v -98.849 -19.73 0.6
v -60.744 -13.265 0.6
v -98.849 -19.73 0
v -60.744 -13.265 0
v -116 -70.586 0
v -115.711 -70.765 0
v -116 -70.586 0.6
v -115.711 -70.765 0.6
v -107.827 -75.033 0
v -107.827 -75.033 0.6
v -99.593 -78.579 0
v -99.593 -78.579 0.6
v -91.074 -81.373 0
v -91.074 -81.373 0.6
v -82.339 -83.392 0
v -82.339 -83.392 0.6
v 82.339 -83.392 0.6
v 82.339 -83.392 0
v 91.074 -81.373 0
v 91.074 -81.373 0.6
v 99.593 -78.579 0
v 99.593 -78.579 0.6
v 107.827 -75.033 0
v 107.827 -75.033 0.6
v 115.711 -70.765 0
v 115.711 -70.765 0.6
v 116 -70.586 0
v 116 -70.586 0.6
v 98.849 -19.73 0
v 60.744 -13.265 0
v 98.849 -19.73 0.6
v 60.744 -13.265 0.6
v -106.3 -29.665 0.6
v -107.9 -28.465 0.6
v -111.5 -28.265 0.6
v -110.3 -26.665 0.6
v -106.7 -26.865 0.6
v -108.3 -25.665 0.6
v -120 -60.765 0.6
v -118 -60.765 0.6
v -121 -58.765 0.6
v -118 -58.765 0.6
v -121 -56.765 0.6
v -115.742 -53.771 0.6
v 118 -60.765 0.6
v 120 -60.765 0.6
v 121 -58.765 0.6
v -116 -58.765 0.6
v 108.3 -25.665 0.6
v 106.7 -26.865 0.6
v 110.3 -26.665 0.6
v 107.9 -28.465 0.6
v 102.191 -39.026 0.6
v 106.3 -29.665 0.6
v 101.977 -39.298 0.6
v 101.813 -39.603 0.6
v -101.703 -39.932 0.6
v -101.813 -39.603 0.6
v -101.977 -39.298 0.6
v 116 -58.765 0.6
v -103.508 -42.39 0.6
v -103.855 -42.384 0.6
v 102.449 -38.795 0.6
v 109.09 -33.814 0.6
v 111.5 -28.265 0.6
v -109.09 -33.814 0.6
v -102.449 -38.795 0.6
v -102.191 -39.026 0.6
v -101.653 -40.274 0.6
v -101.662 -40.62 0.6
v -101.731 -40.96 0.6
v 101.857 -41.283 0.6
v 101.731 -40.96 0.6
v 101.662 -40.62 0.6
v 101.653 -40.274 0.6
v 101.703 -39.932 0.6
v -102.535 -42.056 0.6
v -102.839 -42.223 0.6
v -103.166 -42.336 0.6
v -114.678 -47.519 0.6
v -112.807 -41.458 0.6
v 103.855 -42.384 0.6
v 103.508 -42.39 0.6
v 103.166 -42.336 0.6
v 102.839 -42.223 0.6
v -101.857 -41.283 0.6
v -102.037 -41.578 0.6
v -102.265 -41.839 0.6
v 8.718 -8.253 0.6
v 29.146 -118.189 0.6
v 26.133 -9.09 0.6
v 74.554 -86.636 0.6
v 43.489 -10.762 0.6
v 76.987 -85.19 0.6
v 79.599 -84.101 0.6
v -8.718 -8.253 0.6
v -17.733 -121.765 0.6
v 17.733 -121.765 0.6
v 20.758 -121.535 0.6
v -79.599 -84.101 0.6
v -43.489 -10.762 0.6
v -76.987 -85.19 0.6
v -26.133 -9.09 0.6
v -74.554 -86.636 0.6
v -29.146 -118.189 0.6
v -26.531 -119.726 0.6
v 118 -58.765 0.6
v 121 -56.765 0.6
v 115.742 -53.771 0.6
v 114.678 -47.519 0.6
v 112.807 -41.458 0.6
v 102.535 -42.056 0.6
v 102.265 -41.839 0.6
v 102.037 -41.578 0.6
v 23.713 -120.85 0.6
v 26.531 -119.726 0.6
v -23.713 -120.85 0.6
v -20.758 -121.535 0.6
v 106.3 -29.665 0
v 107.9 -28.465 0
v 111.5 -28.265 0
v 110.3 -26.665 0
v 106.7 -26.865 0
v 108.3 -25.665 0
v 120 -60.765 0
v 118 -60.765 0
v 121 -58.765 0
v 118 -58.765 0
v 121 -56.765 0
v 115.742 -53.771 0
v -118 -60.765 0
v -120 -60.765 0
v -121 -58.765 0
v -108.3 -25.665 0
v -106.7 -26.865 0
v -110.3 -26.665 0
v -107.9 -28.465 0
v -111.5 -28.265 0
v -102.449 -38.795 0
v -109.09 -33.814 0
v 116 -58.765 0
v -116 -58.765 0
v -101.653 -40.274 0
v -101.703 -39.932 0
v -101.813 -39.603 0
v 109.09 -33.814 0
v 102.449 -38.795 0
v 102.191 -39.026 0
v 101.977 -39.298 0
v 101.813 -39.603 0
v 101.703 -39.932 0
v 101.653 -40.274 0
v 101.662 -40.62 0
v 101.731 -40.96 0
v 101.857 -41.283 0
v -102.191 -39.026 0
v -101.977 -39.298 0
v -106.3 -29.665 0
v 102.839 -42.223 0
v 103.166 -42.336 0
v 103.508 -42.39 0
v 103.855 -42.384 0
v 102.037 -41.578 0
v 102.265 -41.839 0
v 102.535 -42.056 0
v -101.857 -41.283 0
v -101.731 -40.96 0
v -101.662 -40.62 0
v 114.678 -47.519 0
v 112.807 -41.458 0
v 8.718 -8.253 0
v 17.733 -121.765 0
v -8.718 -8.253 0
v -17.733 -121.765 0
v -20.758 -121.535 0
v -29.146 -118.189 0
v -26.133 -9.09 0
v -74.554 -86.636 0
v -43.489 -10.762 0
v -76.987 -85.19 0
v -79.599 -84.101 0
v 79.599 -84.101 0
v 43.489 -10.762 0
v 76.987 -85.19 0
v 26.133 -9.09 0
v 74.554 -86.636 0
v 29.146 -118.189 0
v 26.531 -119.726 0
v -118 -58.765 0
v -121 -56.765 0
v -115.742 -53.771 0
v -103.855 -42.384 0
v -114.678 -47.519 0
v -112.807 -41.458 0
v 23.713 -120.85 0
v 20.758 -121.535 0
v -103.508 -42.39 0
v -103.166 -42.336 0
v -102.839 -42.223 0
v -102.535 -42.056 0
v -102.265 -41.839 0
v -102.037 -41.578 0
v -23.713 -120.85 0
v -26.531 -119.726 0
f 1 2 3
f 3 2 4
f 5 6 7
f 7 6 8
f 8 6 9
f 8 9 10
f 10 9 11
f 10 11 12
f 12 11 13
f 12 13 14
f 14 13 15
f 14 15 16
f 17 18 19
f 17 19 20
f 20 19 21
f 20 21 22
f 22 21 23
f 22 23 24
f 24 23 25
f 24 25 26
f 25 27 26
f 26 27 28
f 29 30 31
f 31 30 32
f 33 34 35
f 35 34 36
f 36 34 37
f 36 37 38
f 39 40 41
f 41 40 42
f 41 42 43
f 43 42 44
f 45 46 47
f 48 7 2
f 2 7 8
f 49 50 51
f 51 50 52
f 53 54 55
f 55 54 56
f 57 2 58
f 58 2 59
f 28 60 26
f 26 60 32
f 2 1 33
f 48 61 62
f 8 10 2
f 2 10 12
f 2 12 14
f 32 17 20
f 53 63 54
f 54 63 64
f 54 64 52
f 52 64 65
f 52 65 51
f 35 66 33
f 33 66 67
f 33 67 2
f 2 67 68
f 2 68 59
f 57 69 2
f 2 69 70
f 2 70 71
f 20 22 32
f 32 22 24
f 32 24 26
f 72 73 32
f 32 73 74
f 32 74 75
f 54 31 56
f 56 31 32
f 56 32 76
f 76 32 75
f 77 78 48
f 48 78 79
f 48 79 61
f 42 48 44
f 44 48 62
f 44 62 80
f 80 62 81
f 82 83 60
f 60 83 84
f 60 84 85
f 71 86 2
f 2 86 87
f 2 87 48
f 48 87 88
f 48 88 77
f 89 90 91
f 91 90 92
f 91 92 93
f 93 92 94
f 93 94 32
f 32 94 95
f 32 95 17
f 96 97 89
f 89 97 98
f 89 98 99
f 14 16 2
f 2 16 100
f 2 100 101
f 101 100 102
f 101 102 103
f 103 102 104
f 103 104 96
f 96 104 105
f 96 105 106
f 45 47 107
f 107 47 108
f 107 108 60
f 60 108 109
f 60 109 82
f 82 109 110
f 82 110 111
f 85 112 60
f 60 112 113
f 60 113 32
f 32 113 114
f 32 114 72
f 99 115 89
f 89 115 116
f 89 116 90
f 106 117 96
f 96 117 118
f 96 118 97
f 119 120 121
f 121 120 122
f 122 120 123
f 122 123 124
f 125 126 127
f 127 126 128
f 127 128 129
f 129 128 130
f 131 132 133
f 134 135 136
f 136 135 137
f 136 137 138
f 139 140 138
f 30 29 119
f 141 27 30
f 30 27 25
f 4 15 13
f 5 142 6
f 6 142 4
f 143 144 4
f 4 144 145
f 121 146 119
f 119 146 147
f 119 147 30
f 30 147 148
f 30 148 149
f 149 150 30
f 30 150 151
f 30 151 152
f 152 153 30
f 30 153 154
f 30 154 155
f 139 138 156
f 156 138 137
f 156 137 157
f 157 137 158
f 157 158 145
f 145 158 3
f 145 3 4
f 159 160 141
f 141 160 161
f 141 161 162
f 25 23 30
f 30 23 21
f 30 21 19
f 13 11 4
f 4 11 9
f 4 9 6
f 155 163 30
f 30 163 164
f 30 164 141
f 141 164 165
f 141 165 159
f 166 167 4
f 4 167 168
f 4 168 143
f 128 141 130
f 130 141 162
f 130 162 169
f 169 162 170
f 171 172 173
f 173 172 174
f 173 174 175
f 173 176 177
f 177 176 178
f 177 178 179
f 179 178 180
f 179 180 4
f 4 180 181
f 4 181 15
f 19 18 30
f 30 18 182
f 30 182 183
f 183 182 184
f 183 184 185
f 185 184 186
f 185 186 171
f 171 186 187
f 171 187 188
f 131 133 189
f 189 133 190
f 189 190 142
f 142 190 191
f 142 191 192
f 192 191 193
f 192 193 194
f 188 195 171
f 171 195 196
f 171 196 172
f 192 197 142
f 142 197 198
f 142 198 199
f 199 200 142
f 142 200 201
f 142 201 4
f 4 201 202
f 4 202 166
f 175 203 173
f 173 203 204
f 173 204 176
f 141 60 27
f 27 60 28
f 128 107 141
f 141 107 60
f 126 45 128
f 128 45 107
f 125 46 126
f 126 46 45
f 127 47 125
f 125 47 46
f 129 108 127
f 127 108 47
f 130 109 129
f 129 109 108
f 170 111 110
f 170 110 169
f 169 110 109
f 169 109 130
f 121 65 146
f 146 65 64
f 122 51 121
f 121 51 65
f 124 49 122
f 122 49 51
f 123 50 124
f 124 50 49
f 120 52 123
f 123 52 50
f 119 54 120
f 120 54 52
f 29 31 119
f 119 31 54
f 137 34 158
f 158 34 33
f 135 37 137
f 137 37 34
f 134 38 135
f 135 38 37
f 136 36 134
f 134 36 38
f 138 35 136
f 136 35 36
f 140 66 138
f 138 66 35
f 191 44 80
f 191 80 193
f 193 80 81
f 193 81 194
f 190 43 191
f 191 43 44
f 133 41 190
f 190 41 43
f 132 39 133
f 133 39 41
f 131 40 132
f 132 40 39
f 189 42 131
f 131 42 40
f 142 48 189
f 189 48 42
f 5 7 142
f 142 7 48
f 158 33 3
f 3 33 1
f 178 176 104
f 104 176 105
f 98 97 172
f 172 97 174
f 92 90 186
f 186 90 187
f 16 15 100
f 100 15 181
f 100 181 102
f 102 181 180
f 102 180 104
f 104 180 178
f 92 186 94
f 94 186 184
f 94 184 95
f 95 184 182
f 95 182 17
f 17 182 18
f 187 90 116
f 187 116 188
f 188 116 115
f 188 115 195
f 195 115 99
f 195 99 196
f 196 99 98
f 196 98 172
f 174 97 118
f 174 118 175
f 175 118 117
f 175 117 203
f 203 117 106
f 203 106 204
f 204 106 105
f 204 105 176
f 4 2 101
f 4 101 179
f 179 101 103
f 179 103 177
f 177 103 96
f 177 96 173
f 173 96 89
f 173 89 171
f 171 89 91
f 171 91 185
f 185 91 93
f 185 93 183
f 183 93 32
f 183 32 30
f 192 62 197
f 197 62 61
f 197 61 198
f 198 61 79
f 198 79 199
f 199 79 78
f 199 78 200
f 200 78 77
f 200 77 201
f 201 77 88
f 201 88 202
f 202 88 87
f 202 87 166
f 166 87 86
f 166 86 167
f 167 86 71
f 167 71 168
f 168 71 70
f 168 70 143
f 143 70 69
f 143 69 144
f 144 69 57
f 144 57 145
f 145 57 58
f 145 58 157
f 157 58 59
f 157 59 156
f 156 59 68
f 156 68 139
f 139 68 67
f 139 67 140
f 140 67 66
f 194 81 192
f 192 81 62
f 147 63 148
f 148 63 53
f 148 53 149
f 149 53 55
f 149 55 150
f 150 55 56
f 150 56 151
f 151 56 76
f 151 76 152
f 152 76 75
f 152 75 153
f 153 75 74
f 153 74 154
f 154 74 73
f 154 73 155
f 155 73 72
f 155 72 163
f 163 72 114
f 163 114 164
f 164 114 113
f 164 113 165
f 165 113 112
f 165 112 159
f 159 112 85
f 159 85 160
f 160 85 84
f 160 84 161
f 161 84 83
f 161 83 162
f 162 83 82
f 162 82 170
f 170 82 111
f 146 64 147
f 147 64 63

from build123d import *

# Parameters (mm, degrees)
MAIN_SHAPE_DEPTH        = 0.6
TABS_DEPTH              = 154.060061459
TABS_DEPTH_BACK         = 154.060061459
CHIN_GUARD_DEPTH        = 0.6
FILLET1_R               = 20
CUT_EXTRUDE1_DEPTH      = 172.662513141
CUT_EXTRUDE1_DEPTH_BACK = 172.662513141
CUT_EXTRUDE2_DEPTH      = 172.662513141
CUT_EXTRUDE2_DEPTH_BACK = 172.662513141


with BuildPart() as part:
    # Sketch1 → Main Shape (new body)
    with BuildSketch(Plane.XY):
        with BuildLine():
            Line((-24, -91.764766734), (24, -91.764766734))
            Line((24, -91.764766734), (78.266232563, -84.05670244))
            ThreePointArc((78.266232563, -84.05670244), (97.655491519, -79.289252293), (115.711102551, -70.764766734))
            ThreePointArc((115.711102551, -70.764766734), (120.685143325, -65.658407438), (122.5, -58.764766734))
            ThreePointArc((122.5, -58.764766734), (120.227482046, -43.118277124), (113.597722286, -28.764766734))
            ThreePointArc((113.597722286, -28.764766734), (107.811505455, -22.955172168), (100.180351554, -19.955641477))
            Line((100.180351554, -19.955641477), (60.74391922, -13.264766734))
            ThreePointArc((60.74391922, -13.264766734), (50.804108255, -9.246591688), (43.461443341, -1.434367632))
            ThreePointArc((43.461443341, -1.434367632), (36.448172688, 5.805997675), (26.941855461, 9.15842781))
            Line((26.941855461, 9.15842781), (17, 10.235233266))
            Line((17, 10.235233266), (10, 0))
            Line((10, 0), (-10, 0))
            Line((-10, 0), (-17, 10.235233266))
            Line((-17, 10.235233266), (-26.941855461, 9.15842781))
            ThreePointArc((-26.941855461, 9.15842781), (-36.448172688, 5.805997675), (-43.461443341, -1.434367632))
            ThreePointArc((-43.461443341, -1.434367632), (-50.804108255, -9.246591688), (-60.74391922, -13.264766734))
            Line((-60.74391922, -13.264766734), (-100.180351554, -19.955641477))
            ThreePointArc((-100.180351554, -19.955641477), (-107.811505455, -22.955172168), (-113.597722286, -28.764766734))
            ThreePointArc((-113.597722286, -28.764766734), (-120.227482046, -43.118277124), (-122.5, -58.764766734))
            ThreePointArc((-122.5, -58.764766734), (-120.685143325, -65.658407438), (-115.711102551, -70.764766734))
            ThreePointArc((-115.711102551, -70.764766734), (-97.655491519, -79.289252293), (-78.266232563, -84.05670244))
            Line((-78.266232563, -84.05670244), (-24, -91.764766734))
        make_face()
    extrude(amount=MAIN_SHAPE_DEPTH)

    # Sketch2 → Tabs (cut, two sides: drawn at the far end of the back side and taken through both)
    with BuildSketch(Plane.XY.offset(0.6).offset(-TABS_DEPTH_BACK)):
        with BuildLine():
            Line((-121, -58.764766734), (-121, -56.764766734))
            Line((-121, -56.764766734), (-115.742268041, -53.771413729))
            ThreePointArc((-115.742268041, -53.771413729), (-113.511139955, -43.427720083), (-109.089826236, -33.814088314))
            Line((-109.089826236, -33.814088314), (-111.5, -28.264766734))
            Line((-111.5, -28.264766734), (-110.3, -26.664766734))
            Line((-110.3, -26.664766734), (-108.3, -25.664766734))
            Line((-108.3, -25.664766734), (-106.7, -26.864766734))
            Line((-106.7, -26.864766734), (-107.9, -28.464766734))
            Line((-107.9, -28.464766734), (-106.3, -29.664766734))
            Line((-106.3, -29.664766734), (-98.84870892, -19.729711961))
            Line((-98.84870892, -19.729711961), (-100.180351554, -19.955641477))
            ThreePointArc((-100.180351554, -19.955641477), (-107.811505455, -22.955172168), (-113.597722286, -28.764766734))
            ThreePointArc((-113.597722286, -28.764766734), (-120.227482046, -43.118277124), (-122.5, -58.764766734))
            ThreePointArc((-122.5, -58.764766734), (-120.767844146, -65.510135516), (-116, -70.586357152))
            Line((-116, -70.586357152), (-116, -58.764766734))
            Line((-116, -58.764766734), (-118, -58.764766734))
            Line((-118, -58.764766734), (-118, -60.764766734))
            Line((-118, -60.764766734), (-120, -60.764766734))
            Line((-120, -60.764766734), (-121, -58.764766734))
        make_face()
        with BuildLine():
            Line((110.3, -26.664766734), (111.5, -28.264766734))
            Line((111.5, -28.264766734), (109.089826236, -33.814088314))
            ThreePointArc((109.089826236, -33.814088314), (113.511139955, -43.427720083), (115.742268041, -53.771413729))
            Line((115.742268041, -53.771413729), (121, -56.764766734))
            Line((121, -56.764766734), (121, -58.764766734))
            Line((121, -58.764766734), (120, -60.764766734))
            Line((120, -60.764766734), (118, -60.764766734))
            Line((118, -60.764766734), (118, -58.764766734))
            Line((118, -58.764766734), (116, -58.764766734))
            Line((116, -58.764766734), (116, -70.586357152))
            ThreePointArc((116, -70.586357152), (120.767844146, -65.510135516), (122.5, -58.764766734))
            ThreePointArc((122.5, -58.764766734), (120.227482046, -43.118277124), (113.597722286, -28.764766734))
            ThreePointArc((113.597722286, -28.764766734), (107.811505455, -22.955172168), (100.180351554, -19.955641477))
            Line((100.180351554, -19.955641477), (98.84870892, -19.729711961))
            Line((98.84870892, -19.729711961), (106.3, -29.664766734))
            Line((106.3, -29.664766734), (107.9, -28.464766734))
            Line((107.9, -28.464766734), (106.7, -26.864766734))
            Line((106.7, -26.864766734), (108.3, -25.664766734))
            Line((108.3, -25.664766734), (110.3, -26.664766734))
        make_face()
    extrude(amount=TABS_DEPTH + TABS_DEPTH_BACK, mode=Mode.SUBTRACT)

    # Sketch5 → Chin guard (add)
    with BuildSketch(Plane.XY.offset(0.6)):
        Polygon((-78.266232563, -84.05670244), (-24, -121.764766734), (24, -121.764766734), (78.266232563, -84.05670244), (24, -91.764766734), (-24, -91.764766734), align=None)
    extrude(amount=-CHIN_GUARD_DEPTH)

    # Fillet1
    fillet1_edges = [part.edges().sort_by_distance(p)[0] for p in [
        (-24, -121.764766734, 0.3),
        (24, -121.764766734, 0.3),
        (78.266232563, -84.05670244, 0.3),
        (-78.266232563, -84.05670244, 0.3),
    ]]
    fillet(fillet1_edges, radius=FILLET1_R)

    # Sketch6 → Cut-Extrude1 (cut, two sides: drawn at the far end of the back side and taken through both)
    with BuildSketch(Plane.XY.offset(0.6).offset(-CUT_EXTRUDE1_DEPTH_BACK)):
        with BuildLine():
            Line((-60.74391922, -13.264766734), (-60.74391922, 16.735233266))
            Line((-60.74391922, 16.735233266), (60.74391922, 16.735233266))
            Line((60.74391922, 16.735233266), (60.74391922, -13.264766734))
            ThreePointArc((60.74391922, -13.264766734), (0, -8.148349205), (-60.74391922, -13.264766734))
        make_face()
    extrude(amount=CUT_EXTRUDE1_DEPTH + CUT_EXTRUDE1_DEPTH_BACK, mode=Mode.SUBTRACT)

    # Sketch7 → Cut-Extrude2 (cut, two sides: drawn at the far end of the back side and taken through both)
    with BuildSketch(Plane.XY.offset(0.6).offset(-CUT_EXTRUDE2_DEPTH_BACK)):
        with BuildLine():
            Line((-109.089826236, -33.814088314), (-102.449085801, -38.79464364))
            ThreePointArc((-102.449085801, -38.79464364), (-101.786812206, -41.123983791), (-103.854832759, -42.384032539))
            Line((-103.854832759, -42.384032539), (-112.807082802, -41.45817123))
            ThreePointArc((-112.807082802, -41.45817123), (-111.116237814, -37.554538094), (-109.089826236, -33.814088314))
        make_face()
        with BuildLine():
            Line((103.854832759, -42.384032539), (112.807082802, -41.45817123))
            ThreePointArc((112.807082802, -41.45817123), (111.116237814, -37.554538094), (109.089826236, -33.814088314))
            Line((109.089826236, -33.814088314), (102.449085801, -38.79464364))
            ThreePointArc((102.449085801, -38.79464364), (101.786812206, -41.123983791), (103.854832759, -42.384032539))
        make_face()
    extrude(amount=CUT_EXTRUDE2_DEPTH + CUT_EXTRUDE2_DEPTH_BACK, mode=Mode.SUBTRACT)


solid = part.part
